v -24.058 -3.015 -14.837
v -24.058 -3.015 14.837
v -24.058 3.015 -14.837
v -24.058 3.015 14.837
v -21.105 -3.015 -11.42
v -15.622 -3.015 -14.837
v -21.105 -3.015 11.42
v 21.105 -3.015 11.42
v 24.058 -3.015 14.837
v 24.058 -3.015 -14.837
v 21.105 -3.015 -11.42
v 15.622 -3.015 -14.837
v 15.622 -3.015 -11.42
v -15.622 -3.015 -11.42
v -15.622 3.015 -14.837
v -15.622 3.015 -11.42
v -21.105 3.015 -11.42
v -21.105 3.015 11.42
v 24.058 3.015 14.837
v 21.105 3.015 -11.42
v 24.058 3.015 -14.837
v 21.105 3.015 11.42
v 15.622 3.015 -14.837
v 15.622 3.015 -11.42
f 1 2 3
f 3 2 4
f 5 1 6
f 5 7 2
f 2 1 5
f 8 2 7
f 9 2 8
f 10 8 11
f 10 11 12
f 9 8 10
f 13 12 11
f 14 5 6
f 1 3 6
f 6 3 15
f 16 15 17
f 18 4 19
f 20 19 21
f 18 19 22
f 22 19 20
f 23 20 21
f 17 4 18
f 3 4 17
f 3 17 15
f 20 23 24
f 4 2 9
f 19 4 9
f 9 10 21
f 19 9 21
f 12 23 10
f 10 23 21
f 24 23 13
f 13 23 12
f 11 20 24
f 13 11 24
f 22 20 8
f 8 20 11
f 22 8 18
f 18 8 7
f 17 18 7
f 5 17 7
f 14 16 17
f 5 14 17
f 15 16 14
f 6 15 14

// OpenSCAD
printer_error = .03;

motor_width  = 42.18;
motor_depth  = 13.90;
motor_height = 22.81;

casing_scale  = 1.14;
casing_width  = casing_scale * motor_width;
casing_height = casing_scale * casing_scale * motor_height;
casing_depth  = 6;


MotorCase(error=printer_error);
//Motor();

module MotorCase(error=0) {

	difference() {
		cube( [casing_width+error, casing_depth+error, casing_height+error ], center=true );
		Motor(error=error);
		translate( [0,0,-1*casing_height/2] )
		Motor(error=error,size=.74);		
	}


}
module Motor(error=0,size=1) {
    cube( [size*motor_width+error, size*motor_depth+error, size*motor_height+error ], center=true );
}
